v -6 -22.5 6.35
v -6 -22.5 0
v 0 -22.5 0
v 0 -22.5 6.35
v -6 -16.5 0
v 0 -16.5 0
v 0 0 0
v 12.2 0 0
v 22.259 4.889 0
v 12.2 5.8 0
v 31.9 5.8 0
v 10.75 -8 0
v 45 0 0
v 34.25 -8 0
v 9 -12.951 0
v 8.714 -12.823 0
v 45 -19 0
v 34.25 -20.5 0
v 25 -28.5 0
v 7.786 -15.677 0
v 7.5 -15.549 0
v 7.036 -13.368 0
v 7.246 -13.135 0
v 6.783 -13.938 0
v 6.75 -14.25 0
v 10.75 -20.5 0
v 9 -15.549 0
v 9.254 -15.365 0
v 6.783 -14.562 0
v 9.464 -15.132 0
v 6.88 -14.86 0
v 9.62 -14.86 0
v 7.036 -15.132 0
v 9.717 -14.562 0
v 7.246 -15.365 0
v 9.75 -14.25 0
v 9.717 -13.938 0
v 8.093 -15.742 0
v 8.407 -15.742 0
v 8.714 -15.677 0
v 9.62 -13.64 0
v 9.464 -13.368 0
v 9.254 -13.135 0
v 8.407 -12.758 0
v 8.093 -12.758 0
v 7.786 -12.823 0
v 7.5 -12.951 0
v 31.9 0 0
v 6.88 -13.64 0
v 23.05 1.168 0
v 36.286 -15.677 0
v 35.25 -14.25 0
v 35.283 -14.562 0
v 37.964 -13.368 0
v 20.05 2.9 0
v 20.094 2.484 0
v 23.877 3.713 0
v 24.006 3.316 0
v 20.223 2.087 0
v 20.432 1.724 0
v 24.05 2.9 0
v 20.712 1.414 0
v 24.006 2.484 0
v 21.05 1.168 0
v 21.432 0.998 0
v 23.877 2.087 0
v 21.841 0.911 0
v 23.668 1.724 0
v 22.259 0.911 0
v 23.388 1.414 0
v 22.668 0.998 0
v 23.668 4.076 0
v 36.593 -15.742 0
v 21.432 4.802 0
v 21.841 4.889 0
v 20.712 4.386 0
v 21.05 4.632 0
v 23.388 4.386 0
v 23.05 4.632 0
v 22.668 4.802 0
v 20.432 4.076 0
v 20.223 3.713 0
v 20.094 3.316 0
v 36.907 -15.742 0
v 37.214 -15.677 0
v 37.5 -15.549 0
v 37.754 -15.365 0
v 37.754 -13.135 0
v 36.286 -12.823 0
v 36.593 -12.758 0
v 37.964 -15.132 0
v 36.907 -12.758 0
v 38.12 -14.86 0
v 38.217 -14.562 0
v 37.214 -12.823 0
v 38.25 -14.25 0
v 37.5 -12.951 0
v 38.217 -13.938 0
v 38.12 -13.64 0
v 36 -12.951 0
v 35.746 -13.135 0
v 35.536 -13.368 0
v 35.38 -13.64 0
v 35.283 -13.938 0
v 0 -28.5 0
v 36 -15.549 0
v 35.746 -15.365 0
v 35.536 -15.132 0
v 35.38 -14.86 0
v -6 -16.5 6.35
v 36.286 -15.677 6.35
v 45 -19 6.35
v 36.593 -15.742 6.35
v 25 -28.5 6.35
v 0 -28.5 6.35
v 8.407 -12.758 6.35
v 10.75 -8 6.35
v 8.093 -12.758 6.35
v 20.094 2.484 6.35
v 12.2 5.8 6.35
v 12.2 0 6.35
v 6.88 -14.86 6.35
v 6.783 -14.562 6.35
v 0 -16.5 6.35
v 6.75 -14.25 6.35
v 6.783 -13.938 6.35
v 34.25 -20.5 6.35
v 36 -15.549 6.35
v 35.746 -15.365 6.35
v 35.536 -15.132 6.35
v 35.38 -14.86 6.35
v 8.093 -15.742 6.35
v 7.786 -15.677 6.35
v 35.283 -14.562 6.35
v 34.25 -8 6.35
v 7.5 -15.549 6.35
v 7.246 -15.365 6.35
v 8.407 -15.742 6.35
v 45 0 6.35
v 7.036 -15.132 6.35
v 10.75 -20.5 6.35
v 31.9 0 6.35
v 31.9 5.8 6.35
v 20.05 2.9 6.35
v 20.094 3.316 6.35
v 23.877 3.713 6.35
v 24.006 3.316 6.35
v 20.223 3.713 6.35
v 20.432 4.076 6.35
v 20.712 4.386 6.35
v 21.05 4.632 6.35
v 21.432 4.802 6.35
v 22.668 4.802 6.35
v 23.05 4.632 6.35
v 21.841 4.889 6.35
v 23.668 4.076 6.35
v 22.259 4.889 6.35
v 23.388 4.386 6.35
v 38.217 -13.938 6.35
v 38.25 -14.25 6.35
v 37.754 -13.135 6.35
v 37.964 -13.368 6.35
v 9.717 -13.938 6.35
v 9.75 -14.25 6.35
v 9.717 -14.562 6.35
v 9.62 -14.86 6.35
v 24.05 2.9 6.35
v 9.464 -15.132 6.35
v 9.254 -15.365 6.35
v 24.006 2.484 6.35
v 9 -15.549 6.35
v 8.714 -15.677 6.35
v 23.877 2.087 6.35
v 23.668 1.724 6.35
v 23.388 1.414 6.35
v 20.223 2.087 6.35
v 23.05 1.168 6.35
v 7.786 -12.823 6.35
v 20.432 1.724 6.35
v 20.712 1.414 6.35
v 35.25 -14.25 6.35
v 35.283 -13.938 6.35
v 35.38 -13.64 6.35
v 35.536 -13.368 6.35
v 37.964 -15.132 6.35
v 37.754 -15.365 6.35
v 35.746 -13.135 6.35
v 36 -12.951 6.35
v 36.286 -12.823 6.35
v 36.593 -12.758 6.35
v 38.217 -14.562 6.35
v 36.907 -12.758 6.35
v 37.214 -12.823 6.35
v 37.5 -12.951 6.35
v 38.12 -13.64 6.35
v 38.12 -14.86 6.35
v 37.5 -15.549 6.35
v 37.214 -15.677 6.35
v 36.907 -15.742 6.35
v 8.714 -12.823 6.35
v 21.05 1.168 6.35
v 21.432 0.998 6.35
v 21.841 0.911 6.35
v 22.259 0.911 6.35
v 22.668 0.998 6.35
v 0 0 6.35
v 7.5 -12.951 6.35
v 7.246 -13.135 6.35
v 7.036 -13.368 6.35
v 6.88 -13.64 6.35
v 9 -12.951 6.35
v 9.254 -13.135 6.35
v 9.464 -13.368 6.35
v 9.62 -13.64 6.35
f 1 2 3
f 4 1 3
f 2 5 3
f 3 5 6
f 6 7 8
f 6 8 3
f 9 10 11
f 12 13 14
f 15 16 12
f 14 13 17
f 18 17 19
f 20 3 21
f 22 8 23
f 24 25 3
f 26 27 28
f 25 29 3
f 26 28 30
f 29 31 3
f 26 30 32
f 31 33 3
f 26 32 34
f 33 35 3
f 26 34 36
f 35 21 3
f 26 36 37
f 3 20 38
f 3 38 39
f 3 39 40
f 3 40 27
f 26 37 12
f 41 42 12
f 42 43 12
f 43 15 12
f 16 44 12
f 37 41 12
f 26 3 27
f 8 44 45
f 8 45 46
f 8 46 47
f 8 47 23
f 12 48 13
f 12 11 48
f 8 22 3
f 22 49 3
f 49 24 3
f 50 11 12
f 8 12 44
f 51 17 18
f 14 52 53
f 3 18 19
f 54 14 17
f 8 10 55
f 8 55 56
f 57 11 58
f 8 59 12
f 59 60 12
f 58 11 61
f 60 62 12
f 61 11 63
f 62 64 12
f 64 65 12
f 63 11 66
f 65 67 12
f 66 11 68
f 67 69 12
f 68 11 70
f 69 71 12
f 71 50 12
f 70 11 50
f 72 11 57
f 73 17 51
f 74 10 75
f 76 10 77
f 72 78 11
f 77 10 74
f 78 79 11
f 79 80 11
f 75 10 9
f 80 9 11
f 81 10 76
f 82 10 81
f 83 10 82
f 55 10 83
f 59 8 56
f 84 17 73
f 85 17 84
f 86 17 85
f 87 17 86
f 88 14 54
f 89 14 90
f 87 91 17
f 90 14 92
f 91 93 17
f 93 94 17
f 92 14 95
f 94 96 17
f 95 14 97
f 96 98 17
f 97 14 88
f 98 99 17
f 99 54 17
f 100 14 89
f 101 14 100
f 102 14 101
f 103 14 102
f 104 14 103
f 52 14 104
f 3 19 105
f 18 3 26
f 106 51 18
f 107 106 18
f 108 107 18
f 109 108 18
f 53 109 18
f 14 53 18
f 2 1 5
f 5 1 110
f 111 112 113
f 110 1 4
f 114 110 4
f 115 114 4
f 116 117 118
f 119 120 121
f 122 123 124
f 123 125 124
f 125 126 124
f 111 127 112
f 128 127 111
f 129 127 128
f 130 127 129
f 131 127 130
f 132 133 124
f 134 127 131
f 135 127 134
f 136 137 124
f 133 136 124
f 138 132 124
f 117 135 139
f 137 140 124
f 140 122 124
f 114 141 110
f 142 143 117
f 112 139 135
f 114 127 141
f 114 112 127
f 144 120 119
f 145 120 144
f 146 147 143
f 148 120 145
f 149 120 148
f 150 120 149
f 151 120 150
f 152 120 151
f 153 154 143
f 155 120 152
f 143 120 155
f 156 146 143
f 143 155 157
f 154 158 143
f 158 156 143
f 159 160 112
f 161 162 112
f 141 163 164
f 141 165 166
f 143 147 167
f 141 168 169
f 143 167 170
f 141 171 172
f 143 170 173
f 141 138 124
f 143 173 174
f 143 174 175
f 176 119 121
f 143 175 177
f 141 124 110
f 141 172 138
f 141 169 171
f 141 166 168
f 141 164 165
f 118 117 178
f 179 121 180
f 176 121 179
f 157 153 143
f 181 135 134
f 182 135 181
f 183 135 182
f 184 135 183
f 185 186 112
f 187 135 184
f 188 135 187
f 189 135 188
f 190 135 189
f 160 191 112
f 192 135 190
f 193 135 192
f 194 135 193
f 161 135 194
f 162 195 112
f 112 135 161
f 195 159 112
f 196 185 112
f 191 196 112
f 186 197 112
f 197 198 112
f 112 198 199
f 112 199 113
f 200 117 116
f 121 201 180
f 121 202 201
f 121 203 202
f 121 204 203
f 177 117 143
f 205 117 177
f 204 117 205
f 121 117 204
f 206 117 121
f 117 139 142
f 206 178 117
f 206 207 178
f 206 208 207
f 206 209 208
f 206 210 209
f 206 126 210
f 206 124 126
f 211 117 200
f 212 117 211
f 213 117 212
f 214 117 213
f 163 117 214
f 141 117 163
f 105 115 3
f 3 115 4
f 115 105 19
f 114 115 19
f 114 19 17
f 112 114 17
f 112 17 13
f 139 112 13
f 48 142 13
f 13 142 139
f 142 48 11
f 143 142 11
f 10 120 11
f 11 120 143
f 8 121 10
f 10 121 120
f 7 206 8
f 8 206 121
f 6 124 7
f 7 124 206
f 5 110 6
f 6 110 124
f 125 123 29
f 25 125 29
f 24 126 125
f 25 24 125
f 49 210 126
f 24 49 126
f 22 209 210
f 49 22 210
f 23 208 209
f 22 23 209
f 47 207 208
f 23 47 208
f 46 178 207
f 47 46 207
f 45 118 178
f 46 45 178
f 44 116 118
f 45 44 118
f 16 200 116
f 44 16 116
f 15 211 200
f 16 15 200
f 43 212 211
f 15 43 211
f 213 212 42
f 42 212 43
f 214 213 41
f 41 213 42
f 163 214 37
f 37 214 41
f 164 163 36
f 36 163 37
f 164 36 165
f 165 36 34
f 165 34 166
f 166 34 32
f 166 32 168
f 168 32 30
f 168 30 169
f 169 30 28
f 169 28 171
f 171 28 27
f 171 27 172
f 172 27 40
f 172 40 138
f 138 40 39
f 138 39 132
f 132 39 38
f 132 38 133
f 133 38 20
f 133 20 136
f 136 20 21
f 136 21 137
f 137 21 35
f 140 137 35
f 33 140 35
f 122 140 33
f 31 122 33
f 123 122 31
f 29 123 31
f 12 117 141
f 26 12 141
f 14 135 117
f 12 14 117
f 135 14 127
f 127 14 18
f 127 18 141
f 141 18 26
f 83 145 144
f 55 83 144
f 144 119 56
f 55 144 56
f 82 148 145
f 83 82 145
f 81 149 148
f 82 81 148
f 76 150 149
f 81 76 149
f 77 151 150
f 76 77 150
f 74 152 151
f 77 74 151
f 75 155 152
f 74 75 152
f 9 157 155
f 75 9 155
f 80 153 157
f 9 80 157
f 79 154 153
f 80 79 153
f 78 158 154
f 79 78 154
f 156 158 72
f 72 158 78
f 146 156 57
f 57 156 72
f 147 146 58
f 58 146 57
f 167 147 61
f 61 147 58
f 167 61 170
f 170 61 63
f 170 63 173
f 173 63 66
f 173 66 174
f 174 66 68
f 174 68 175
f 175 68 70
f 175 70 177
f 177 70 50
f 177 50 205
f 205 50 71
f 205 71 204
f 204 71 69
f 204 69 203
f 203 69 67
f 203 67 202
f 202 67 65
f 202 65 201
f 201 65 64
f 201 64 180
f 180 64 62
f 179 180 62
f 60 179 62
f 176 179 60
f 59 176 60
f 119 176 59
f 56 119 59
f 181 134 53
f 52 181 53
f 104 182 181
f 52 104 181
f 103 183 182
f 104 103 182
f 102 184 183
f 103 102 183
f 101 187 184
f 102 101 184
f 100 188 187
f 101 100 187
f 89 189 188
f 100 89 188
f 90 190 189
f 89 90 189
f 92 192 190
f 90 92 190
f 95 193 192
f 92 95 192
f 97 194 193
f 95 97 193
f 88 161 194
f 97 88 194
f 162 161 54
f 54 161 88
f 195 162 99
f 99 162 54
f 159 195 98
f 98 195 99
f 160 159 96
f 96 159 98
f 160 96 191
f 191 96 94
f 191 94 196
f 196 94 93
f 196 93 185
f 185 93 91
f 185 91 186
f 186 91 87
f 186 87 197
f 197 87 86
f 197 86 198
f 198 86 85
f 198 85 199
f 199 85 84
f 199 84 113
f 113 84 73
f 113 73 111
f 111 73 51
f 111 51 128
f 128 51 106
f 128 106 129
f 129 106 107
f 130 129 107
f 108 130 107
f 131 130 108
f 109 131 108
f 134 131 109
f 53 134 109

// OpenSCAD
// file: lib/DepthGauge.scad
// Distance from the back-plate to the far outer point of the mounting bracket
dg_length=18.8;

// Width of the mounting bracket at the widest point, including flange
dg_width=22;

// Thickness of the mounting bracket
dg_thickness=5;

// Distance from the back-plate to the near-edge of the mounting hole
dg_pin_centre=10.62;

// Diameter of the mounting hole
dg_pin_radius=3.29;


// Jitter. This should be much less than one layer height.
j=0.05;



module DepthGauge_MountBlock(pin=true)
{
	// Width of the mounting bracket at the flange
	unflanged_width=16.42;

	difference()
	{
		// Main body of the bracket
		union()
		{

			// Rounded end of main body of the bracket
			translate([-dg_pin_centre, 0, 0])
			cylinder(r=unflanged_width/2, h=dg_thickness, center=true, $fn=30);

			// Square end of main body of the bracket
			translate([0, 0, -dg_thickness/2])
			linear_extrude(height=dg_thickness) 
			polygon(points=[
				[0, -dg_width/2], // bottom-right, by flange
				[0, dg_width/2], // top-right, by flange
				[-3, unflanged_width/2], // top-right, by straight off flange
				[-dg_pin_centre, unflanged_width/2], // top middle, by hole
				[-dg_pin_centre, -unflanged_width/2], // bottom middle, by hole
				[-3, -unflanged_width/2] // bottom-right, by straight off flange
			]);
		}

		if(pin==true)
		{
			// Hole
			translate([-dg_pin_centre, 0, 0])
			cylinder(r=dg_pin_radius, h=dg_thickness+j*2, center=true, $fn=30);
		}
	}
}

//DepthGauge_MountBlock(false);
// file: x_side.scad
include <lib/DepthGauge.scad>

// Panel thickness
//t=6.35;

// Jitter. This should be much less than one layer height.
j=0.03;

function PanelThickness()=6.35;

// Side panel with the various holes cut out
module XSidePlate(endstop_hole=false)
{
	translate([0, 0, PanelThickness()])
	rotate([180, 0, 0])
	difference()
	{
		linear_extrude(height=PanelThickness()) 
		polygon(points=[
			[0, 0],       // 0
			[12.2, 0],    // 1
			[12.2, -5.8], // 2
			[31.9, -5.8], // 3
			[31.9, 0],    // 4
			[45, 0],      // 5
			[45, 19],     // 6
			[25, 28.5],   // 7
			[0, 28.5],    // 8
			[0, 22.5],    // 9
			[-6, 22.5],   //10
			[-6, 16.5],   //11
			[0, 16.5]     //12
		]);

		// X Endstop bolt hole
		if(endstop_hole) {
			translate([17.9, 13.3, -j])
			cylinder(h=PanelThickness()+j+j, r=1.5,$fn=30);
		}

		// Main mounting bolt hole
		translate([22.05, -2.9, -j]) 
		cylinder(h=PanelThickness()+j+j, r=2, $fn=30);
	}
}


XSidePlate();
// main file
use <x_side.scad>

// Cut hole for a servo - useful for auto-z-levelling
// Specify the dimensions of the servo hole
servo_width=23.5;  // Width of cutout for servo
servo_height=12.5; // Height of cutout for servo
servo_bolt_size=3; // Diameter of bolt shaft

// Jitter. This should be much less than one layer height.
j=0.05;


// Side panel with the various holes cut out
module XSideServoMount()
{
	difference()
	{
		// Main body
		XSidePlate();

		// Servo hole
		translate([22.5, -14.25, PanelThickness()/2]) 
		ServoHoleFormer();
	}
}


module ServoHoleFormer()
{
	cube([servo_width, servo_height, PanelThickness()+j+j], true);

	translate([servo_width/2 + servo_bolt_size/2 +1, 0, 0])
	cylinder(h=PanelThickness()+j+j, r=servo_bolt_size/2, $fn=30, center=true);

	translate([-servo_width/2 - servo_bolt_size/2-1, 0, 0])
	cylinder(h=PanelThickness()+j+j, r=servo_bolt_size/2, $fn=30, center=true);
}



XSideServoMount();
